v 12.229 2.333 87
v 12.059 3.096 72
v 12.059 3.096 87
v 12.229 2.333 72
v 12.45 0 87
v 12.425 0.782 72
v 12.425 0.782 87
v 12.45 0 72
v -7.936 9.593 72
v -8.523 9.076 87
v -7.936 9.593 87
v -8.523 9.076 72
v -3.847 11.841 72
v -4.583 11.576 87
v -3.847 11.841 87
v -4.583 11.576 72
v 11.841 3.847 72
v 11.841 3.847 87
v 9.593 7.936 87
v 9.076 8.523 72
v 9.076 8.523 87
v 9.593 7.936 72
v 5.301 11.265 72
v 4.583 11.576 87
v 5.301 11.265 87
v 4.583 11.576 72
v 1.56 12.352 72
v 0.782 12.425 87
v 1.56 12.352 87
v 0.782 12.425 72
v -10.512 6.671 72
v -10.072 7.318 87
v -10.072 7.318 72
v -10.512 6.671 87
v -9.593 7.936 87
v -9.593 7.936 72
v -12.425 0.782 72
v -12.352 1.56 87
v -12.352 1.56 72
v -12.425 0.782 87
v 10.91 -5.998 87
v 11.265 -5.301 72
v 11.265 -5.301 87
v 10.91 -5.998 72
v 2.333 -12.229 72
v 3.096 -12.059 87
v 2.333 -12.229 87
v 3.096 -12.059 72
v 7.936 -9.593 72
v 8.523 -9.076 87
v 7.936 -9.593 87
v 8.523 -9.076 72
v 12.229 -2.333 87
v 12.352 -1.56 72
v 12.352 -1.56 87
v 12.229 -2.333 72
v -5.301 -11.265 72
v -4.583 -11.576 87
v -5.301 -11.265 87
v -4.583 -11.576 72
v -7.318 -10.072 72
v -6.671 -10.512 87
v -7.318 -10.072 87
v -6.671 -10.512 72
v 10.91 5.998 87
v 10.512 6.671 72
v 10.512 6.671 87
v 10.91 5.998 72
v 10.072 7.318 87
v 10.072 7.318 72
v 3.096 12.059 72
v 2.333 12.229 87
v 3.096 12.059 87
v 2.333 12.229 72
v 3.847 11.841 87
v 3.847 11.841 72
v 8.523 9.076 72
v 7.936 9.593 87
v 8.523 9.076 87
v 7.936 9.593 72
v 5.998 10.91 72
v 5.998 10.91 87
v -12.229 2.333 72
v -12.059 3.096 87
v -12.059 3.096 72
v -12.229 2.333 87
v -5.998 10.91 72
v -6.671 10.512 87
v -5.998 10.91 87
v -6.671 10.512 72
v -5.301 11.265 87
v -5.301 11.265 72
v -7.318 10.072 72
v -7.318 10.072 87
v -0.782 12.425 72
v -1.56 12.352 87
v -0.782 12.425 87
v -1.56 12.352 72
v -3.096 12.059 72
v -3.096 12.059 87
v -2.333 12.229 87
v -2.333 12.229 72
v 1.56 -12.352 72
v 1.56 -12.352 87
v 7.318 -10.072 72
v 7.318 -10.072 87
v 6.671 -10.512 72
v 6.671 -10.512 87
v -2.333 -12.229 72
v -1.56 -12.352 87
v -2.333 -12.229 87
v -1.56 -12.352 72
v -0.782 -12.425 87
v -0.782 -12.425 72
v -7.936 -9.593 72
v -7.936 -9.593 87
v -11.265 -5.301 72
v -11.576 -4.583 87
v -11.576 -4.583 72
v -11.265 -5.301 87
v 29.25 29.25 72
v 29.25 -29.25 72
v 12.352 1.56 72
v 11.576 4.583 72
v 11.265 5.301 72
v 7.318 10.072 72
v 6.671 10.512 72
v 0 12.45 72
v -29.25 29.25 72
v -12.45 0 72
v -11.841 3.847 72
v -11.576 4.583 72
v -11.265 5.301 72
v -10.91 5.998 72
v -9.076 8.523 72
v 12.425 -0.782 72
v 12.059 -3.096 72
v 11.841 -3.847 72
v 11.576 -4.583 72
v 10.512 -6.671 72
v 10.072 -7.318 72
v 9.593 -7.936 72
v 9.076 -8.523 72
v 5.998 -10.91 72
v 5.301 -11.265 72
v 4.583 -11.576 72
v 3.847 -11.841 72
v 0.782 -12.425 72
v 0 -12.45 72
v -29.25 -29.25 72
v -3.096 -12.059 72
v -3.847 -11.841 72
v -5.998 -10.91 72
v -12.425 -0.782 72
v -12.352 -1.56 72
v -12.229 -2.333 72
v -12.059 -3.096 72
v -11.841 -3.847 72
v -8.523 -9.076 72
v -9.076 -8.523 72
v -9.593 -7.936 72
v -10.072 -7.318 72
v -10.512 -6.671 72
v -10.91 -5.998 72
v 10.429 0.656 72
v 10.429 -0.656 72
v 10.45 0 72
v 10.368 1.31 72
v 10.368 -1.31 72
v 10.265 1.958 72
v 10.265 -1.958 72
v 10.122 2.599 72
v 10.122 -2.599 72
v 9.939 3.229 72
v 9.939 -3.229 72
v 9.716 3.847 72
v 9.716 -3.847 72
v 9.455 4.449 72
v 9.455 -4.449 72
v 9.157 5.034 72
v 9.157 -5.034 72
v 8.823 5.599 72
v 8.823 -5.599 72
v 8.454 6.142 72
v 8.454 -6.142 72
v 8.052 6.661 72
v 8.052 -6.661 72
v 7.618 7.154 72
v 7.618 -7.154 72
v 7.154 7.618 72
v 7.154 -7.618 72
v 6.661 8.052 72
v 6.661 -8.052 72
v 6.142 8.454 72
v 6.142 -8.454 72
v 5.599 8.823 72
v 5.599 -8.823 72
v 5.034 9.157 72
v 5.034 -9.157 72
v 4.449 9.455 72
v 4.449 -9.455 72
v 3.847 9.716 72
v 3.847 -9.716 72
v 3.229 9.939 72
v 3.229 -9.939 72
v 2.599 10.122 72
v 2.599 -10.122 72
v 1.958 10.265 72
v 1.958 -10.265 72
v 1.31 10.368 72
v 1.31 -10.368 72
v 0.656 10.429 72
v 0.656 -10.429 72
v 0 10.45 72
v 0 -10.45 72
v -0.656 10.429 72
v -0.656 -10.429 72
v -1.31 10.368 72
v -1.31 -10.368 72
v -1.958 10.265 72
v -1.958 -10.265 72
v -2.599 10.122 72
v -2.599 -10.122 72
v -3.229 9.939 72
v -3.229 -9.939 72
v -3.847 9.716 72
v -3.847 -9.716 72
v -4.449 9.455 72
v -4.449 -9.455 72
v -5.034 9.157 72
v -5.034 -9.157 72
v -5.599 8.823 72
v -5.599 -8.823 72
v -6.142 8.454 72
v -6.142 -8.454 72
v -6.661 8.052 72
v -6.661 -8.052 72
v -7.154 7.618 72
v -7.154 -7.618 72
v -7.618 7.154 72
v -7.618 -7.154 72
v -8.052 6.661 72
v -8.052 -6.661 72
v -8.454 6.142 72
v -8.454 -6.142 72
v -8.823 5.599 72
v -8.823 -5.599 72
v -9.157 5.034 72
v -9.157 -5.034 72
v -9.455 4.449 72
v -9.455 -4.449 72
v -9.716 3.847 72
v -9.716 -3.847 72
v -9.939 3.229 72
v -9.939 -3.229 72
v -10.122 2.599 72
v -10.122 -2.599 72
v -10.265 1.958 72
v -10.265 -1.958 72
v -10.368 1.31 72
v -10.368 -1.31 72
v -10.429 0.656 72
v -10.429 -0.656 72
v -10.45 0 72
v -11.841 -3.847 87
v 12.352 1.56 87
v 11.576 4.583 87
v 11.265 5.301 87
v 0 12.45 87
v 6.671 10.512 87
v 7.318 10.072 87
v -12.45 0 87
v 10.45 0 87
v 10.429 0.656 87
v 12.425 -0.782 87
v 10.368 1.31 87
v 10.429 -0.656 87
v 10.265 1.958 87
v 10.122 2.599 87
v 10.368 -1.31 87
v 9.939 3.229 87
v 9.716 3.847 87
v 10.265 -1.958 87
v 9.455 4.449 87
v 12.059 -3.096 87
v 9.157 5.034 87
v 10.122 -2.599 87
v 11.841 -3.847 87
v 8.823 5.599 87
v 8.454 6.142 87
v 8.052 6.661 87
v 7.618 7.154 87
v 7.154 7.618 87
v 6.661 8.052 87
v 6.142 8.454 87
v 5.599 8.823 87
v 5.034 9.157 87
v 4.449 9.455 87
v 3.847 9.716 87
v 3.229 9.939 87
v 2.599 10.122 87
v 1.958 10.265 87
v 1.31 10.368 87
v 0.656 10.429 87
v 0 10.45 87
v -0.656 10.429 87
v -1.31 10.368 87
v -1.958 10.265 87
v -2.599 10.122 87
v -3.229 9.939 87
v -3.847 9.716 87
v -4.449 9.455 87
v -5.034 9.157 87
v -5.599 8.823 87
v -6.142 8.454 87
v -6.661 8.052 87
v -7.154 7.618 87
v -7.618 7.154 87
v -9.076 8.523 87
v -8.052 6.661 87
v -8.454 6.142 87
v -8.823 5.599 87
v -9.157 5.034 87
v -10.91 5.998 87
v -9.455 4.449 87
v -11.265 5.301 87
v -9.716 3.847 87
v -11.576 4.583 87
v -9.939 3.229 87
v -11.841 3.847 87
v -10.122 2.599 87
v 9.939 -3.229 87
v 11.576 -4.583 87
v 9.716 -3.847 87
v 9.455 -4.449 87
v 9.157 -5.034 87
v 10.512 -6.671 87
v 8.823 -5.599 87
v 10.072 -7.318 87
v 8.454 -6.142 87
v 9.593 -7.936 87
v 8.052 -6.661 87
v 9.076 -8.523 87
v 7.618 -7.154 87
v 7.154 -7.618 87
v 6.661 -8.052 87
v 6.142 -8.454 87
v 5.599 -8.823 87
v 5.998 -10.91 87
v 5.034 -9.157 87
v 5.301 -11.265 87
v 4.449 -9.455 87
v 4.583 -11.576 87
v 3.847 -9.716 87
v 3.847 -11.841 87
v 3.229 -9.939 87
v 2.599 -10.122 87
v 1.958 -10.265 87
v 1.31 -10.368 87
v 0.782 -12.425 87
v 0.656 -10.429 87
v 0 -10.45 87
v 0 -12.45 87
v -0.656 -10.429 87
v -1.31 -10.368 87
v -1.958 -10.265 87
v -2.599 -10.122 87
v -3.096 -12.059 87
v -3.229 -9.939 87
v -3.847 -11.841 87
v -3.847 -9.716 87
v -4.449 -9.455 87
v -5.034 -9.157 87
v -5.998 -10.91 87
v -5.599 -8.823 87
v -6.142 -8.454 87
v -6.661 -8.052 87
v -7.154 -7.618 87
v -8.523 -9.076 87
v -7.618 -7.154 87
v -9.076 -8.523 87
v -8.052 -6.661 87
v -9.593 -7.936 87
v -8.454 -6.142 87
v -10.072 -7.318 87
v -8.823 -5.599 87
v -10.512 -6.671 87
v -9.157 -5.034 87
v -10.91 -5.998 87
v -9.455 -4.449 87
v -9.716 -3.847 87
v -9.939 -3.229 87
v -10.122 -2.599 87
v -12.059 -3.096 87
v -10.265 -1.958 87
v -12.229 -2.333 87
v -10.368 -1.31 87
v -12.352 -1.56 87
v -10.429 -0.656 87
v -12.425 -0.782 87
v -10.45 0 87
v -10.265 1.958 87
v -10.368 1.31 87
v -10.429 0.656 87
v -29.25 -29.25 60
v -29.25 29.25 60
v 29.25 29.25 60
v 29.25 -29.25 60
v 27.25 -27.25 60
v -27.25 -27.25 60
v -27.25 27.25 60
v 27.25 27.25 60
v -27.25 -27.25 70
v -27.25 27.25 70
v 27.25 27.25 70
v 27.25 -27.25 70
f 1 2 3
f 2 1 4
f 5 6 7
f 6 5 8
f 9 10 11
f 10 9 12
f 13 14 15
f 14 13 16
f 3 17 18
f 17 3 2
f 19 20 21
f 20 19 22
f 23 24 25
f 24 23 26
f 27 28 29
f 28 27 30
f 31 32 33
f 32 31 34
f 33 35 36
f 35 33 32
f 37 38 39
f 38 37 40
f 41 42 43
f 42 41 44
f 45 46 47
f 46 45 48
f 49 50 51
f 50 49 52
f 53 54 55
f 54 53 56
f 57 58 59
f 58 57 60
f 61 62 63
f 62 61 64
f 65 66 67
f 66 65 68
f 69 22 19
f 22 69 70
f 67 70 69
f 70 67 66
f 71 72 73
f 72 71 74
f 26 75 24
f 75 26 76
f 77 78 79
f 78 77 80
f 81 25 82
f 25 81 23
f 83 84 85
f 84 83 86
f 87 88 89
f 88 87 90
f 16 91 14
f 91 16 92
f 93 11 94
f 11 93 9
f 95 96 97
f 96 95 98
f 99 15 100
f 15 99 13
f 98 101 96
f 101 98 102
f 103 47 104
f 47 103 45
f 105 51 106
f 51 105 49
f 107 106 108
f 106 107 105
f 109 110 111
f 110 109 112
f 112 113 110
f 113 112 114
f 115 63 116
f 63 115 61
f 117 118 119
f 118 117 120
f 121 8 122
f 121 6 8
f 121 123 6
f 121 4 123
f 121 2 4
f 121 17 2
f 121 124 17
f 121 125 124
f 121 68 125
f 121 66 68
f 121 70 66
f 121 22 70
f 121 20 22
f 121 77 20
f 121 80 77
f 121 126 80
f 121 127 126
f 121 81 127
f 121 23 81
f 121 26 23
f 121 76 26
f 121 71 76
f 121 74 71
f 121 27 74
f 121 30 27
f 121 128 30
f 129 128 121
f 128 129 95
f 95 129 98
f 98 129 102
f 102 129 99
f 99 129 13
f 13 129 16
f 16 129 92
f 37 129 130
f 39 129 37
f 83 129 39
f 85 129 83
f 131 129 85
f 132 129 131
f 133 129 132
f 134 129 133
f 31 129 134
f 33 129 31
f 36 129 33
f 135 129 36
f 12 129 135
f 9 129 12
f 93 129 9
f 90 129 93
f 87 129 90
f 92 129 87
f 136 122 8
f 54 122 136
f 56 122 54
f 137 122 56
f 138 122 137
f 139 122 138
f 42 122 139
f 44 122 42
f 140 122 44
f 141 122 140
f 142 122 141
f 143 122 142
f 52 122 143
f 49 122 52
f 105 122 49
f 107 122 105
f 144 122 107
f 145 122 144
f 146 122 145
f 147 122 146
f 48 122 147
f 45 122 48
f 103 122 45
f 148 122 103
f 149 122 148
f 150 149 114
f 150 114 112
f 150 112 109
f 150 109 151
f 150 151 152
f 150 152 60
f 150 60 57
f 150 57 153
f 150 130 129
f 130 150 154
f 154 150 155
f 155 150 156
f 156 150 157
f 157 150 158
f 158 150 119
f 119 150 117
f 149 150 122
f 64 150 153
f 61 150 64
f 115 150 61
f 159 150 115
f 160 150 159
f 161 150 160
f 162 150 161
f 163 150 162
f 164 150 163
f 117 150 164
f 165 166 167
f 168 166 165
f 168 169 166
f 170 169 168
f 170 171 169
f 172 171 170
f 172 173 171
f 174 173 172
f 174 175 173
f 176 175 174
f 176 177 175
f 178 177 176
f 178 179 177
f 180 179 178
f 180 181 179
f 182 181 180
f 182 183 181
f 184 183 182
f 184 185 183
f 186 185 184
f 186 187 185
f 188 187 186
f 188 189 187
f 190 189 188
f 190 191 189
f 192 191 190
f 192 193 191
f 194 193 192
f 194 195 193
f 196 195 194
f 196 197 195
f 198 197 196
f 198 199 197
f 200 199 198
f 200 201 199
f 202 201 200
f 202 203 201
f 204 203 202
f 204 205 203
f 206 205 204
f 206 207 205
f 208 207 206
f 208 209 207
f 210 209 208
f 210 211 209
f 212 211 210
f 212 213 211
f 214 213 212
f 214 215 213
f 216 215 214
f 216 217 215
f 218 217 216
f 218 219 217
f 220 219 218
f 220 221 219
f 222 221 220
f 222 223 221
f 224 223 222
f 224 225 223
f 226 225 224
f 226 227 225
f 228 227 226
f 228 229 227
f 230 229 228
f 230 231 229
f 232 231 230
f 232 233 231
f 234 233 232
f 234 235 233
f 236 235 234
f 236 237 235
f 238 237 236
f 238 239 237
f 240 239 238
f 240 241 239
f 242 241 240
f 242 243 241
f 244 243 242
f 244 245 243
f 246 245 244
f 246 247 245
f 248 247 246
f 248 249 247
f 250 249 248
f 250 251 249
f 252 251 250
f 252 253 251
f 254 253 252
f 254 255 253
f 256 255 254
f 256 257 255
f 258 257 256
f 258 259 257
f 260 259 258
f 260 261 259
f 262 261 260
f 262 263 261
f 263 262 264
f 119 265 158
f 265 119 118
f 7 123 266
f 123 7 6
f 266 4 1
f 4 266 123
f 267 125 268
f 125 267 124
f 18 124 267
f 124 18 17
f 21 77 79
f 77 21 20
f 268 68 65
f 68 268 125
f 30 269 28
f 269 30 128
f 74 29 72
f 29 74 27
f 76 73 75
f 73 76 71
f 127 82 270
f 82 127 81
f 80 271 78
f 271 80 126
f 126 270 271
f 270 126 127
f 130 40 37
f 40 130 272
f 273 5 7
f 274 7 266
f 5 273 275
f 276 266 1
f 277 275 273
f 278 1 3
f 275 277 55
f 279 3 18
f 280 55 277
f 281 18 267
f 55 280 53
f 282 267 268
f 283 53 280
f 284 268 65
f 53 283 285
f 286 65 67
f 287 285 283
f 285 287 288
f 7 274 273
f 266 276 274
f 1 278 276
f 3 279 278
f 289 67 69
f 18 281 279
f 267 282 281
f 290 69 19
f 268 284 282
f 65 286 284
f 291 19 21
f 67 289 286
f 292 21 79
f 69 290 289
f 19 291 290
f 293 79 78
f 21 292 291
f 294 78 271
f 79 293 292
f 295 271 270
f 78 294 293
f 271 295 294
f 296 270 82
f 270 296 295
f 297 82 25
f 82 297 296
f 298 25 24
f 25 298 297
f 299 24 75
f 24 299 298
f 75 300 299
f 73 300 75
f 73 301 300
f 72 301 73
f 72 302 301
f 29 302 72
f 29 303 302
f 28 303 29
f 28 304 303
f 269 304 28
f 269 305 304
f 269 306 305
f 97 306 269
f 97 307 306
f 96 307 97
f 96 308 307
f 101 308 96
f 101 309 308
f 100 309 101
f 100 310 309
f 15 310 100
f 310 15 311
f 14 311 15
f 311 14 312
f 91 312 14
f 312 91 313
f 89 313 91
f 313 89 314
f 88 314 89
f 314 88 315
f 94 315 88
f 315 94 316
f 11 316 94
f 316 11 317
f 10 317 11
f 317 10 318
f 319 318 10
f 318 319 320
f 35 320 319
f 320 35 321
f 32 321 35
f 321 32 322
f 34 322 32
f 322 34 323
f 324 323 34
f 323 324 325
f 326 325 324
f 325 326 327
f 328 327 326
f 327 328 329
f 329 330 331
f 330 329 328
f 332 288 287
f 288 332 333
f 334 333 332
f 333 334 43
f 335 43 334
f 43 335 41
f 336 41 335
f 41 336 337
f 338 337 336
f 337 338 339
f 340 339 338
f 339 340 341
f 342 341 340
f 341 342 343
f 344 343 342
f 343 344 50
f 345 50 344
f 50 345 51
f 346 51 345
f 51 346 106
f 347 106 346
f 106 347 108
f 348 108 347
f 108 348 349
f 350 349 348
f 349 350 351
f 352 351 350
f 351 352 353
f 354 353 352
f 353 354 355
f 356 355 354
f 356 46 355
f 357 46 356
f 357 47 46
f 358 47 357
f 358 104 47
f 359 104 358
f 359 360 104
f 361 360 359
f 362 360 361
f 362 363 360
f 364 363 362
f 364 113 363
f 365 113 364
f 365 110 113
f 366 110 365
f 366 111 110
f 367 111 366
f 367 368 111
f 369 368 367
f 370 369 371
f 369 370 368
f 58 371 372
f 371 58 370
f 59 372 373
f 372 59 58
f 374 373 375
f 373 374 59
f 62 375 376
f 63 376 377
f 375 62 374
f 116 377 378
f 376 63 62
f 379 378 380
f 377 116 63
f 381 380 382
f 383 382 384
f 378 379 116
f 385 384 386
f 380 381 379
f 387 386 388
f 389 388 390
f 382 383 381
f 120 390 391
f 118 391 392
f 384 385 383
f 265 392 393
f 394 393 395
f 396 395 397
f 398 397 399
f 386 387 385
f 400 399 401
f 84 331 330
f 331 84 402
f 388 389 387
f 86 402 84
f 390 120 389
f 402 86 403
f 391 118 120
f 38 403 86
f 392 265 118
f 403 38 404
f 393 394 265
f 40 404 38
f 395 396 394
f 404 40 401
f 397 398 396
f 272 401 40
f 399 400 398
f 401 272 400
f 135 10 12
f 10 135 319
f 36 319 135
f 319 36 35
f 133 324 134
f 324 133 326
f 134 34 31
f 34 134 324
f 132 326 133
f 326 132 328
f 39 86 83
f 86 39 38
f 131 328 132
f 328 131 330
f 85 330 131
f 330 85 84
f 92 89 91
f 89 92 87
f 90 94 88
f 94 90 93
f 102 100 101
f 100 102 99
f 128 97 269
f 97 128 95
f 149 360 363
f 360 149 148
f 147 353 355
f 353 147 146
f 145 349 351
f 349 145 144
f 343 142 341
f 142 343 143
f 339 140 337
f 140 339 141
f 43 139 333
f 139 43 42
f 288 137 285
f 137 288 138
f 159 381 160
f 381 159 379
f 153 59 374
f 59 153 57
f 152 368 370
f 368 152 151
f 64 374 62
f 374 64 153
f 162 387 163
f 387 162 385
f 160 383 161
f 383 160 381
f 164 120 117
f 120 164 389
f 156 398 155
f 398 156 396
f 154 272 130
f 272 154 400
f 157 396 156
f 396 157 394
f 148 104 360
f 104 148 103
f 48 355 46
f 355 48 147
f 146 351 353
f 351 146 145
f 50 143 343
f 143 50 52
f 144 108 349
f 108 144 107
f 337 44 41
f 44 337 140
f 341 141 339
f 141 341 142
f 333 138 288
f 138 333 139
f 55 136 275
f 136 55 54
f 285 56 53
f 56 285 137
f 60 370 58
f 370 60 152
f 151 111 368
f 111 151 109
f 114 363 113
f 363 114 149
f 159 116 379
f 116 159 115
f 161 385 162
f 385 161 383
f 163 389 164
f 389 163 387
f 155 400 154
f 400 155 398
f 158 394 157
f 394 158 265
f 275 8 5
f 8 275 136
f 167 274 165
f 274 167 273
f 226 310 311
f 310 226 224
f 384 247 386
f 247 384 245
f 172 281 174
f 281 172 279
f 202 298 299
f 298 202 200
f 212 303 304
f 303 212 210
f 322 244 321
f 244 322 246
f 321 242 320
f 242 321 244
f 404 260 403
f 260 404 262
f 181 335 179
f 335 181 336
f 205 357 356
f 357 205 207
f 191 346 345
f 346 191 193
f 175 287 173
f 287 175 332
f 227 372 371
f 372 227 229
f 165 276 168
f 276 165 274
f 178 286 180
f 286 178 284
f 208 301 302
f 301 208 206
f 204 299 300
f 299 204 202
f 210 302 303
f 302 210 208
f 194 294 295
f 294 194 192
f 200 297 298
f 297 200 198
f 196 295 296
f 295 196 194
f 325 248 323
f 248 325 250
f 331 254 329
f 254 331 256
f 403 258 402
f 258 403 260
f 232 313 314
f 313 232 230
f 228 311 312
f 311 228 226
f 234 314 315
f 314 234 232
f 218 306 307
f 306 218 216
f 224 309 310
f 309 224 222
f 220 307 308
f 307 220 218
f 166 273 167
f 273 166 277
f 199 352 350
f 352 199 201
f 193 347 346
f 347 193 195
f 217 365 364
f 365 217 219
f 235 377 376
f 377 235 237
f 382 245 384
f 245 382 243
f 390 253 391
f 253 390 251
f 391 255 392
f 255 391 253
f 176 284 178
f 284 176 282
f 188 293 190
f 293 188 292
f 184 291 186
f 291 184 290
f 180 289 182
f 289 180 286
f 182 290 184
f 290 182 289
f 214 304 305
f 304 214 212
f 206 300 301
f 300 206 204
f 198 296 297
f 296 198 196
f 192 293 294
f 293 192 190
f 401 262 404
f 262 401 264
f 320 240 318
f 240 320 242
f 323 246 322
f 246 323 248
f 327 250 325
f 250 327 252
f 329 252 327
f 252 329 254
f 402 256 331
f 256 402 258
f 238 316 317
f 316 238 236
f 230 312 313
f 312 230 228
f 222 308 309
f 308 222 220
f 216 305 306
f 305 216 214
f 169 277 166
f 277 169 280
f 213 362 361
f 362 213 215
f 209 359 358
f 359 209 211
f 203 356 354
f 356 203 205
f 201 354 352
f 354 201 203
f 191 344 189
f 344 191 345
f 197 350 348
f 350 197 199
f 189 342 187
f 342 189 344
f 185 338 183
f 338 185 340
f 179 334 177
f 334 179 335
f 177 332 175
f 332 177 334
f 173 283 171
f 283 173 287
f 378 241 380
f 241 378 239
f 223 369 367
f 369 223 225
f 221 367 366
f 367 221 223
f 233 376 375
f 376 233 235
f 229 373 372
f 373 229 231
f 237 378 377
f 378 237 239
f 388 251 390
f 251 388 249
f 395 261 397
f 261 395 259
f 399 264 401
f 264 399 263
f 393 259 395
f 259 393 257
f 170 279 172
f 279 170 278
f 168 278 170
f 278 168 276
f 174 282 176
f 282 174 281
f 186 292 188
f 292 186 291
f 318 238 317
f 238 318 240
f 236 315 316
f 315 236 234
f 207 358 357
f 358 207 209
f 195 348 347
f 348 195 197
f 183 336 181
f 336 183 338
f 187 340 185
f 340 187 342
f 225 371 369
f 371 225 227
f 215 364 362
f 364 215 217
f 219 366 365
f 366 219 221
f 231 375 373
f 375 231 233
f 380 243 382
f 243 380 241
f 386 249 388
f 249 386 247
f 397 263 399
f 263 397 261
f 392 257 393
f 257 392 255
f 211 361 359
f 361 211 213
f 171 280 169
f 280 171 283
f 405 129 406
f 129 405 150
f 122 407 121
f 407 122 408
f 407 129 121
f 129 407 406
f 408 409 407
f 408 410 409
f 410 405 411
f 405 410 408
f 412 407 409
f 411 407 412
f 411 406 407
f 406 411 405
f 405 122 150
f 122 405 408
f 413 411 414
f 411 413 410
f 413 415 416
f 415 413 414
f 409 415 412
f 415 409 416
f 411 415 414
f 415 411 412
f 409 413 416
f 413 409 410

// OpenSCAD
// ----- ----- ----- Declaração de Variáveis ----- ----- ----- //
res=100;
folga1=0.125;

cubox=50-35;
cuboy=50;
cuboz=60;
rBob=15;
esp=2.5;

rInt=10.45;
rExt=12.45;
alt=15;

supr=18;
supalt=5;

// Estamos nos referindo aqui ao encaixe do interior
encx=54.5;
ency=54.5;
encz=10;
espenc=2;

// ----- ----- ----- MAIN ----- ----- ----- //
translate([0,0,120]){    
    //Encaixe Cilíndrico Real
    translate([0,0,encz+espenc-120+70-encz])
    difference(){
        cylinder(alt,rExt,rExt,$fn=res);
        #cylinder(alt,rInt,rInt,$fn=res);
    }
    
    // Base do Encaixe Cilíndrico de Sobra
    translate([0,0,-120+70-encz])
    translate([-(encx+2*espenc)/2,-(ency+2*espenc)/2,0])
    difference(){
        cube([encx+2*espenc,ency+2*espenc,encz+espenc]);
        #translate([espenc,espenc,0])cube([encx,ency,encz]);
    }
}
